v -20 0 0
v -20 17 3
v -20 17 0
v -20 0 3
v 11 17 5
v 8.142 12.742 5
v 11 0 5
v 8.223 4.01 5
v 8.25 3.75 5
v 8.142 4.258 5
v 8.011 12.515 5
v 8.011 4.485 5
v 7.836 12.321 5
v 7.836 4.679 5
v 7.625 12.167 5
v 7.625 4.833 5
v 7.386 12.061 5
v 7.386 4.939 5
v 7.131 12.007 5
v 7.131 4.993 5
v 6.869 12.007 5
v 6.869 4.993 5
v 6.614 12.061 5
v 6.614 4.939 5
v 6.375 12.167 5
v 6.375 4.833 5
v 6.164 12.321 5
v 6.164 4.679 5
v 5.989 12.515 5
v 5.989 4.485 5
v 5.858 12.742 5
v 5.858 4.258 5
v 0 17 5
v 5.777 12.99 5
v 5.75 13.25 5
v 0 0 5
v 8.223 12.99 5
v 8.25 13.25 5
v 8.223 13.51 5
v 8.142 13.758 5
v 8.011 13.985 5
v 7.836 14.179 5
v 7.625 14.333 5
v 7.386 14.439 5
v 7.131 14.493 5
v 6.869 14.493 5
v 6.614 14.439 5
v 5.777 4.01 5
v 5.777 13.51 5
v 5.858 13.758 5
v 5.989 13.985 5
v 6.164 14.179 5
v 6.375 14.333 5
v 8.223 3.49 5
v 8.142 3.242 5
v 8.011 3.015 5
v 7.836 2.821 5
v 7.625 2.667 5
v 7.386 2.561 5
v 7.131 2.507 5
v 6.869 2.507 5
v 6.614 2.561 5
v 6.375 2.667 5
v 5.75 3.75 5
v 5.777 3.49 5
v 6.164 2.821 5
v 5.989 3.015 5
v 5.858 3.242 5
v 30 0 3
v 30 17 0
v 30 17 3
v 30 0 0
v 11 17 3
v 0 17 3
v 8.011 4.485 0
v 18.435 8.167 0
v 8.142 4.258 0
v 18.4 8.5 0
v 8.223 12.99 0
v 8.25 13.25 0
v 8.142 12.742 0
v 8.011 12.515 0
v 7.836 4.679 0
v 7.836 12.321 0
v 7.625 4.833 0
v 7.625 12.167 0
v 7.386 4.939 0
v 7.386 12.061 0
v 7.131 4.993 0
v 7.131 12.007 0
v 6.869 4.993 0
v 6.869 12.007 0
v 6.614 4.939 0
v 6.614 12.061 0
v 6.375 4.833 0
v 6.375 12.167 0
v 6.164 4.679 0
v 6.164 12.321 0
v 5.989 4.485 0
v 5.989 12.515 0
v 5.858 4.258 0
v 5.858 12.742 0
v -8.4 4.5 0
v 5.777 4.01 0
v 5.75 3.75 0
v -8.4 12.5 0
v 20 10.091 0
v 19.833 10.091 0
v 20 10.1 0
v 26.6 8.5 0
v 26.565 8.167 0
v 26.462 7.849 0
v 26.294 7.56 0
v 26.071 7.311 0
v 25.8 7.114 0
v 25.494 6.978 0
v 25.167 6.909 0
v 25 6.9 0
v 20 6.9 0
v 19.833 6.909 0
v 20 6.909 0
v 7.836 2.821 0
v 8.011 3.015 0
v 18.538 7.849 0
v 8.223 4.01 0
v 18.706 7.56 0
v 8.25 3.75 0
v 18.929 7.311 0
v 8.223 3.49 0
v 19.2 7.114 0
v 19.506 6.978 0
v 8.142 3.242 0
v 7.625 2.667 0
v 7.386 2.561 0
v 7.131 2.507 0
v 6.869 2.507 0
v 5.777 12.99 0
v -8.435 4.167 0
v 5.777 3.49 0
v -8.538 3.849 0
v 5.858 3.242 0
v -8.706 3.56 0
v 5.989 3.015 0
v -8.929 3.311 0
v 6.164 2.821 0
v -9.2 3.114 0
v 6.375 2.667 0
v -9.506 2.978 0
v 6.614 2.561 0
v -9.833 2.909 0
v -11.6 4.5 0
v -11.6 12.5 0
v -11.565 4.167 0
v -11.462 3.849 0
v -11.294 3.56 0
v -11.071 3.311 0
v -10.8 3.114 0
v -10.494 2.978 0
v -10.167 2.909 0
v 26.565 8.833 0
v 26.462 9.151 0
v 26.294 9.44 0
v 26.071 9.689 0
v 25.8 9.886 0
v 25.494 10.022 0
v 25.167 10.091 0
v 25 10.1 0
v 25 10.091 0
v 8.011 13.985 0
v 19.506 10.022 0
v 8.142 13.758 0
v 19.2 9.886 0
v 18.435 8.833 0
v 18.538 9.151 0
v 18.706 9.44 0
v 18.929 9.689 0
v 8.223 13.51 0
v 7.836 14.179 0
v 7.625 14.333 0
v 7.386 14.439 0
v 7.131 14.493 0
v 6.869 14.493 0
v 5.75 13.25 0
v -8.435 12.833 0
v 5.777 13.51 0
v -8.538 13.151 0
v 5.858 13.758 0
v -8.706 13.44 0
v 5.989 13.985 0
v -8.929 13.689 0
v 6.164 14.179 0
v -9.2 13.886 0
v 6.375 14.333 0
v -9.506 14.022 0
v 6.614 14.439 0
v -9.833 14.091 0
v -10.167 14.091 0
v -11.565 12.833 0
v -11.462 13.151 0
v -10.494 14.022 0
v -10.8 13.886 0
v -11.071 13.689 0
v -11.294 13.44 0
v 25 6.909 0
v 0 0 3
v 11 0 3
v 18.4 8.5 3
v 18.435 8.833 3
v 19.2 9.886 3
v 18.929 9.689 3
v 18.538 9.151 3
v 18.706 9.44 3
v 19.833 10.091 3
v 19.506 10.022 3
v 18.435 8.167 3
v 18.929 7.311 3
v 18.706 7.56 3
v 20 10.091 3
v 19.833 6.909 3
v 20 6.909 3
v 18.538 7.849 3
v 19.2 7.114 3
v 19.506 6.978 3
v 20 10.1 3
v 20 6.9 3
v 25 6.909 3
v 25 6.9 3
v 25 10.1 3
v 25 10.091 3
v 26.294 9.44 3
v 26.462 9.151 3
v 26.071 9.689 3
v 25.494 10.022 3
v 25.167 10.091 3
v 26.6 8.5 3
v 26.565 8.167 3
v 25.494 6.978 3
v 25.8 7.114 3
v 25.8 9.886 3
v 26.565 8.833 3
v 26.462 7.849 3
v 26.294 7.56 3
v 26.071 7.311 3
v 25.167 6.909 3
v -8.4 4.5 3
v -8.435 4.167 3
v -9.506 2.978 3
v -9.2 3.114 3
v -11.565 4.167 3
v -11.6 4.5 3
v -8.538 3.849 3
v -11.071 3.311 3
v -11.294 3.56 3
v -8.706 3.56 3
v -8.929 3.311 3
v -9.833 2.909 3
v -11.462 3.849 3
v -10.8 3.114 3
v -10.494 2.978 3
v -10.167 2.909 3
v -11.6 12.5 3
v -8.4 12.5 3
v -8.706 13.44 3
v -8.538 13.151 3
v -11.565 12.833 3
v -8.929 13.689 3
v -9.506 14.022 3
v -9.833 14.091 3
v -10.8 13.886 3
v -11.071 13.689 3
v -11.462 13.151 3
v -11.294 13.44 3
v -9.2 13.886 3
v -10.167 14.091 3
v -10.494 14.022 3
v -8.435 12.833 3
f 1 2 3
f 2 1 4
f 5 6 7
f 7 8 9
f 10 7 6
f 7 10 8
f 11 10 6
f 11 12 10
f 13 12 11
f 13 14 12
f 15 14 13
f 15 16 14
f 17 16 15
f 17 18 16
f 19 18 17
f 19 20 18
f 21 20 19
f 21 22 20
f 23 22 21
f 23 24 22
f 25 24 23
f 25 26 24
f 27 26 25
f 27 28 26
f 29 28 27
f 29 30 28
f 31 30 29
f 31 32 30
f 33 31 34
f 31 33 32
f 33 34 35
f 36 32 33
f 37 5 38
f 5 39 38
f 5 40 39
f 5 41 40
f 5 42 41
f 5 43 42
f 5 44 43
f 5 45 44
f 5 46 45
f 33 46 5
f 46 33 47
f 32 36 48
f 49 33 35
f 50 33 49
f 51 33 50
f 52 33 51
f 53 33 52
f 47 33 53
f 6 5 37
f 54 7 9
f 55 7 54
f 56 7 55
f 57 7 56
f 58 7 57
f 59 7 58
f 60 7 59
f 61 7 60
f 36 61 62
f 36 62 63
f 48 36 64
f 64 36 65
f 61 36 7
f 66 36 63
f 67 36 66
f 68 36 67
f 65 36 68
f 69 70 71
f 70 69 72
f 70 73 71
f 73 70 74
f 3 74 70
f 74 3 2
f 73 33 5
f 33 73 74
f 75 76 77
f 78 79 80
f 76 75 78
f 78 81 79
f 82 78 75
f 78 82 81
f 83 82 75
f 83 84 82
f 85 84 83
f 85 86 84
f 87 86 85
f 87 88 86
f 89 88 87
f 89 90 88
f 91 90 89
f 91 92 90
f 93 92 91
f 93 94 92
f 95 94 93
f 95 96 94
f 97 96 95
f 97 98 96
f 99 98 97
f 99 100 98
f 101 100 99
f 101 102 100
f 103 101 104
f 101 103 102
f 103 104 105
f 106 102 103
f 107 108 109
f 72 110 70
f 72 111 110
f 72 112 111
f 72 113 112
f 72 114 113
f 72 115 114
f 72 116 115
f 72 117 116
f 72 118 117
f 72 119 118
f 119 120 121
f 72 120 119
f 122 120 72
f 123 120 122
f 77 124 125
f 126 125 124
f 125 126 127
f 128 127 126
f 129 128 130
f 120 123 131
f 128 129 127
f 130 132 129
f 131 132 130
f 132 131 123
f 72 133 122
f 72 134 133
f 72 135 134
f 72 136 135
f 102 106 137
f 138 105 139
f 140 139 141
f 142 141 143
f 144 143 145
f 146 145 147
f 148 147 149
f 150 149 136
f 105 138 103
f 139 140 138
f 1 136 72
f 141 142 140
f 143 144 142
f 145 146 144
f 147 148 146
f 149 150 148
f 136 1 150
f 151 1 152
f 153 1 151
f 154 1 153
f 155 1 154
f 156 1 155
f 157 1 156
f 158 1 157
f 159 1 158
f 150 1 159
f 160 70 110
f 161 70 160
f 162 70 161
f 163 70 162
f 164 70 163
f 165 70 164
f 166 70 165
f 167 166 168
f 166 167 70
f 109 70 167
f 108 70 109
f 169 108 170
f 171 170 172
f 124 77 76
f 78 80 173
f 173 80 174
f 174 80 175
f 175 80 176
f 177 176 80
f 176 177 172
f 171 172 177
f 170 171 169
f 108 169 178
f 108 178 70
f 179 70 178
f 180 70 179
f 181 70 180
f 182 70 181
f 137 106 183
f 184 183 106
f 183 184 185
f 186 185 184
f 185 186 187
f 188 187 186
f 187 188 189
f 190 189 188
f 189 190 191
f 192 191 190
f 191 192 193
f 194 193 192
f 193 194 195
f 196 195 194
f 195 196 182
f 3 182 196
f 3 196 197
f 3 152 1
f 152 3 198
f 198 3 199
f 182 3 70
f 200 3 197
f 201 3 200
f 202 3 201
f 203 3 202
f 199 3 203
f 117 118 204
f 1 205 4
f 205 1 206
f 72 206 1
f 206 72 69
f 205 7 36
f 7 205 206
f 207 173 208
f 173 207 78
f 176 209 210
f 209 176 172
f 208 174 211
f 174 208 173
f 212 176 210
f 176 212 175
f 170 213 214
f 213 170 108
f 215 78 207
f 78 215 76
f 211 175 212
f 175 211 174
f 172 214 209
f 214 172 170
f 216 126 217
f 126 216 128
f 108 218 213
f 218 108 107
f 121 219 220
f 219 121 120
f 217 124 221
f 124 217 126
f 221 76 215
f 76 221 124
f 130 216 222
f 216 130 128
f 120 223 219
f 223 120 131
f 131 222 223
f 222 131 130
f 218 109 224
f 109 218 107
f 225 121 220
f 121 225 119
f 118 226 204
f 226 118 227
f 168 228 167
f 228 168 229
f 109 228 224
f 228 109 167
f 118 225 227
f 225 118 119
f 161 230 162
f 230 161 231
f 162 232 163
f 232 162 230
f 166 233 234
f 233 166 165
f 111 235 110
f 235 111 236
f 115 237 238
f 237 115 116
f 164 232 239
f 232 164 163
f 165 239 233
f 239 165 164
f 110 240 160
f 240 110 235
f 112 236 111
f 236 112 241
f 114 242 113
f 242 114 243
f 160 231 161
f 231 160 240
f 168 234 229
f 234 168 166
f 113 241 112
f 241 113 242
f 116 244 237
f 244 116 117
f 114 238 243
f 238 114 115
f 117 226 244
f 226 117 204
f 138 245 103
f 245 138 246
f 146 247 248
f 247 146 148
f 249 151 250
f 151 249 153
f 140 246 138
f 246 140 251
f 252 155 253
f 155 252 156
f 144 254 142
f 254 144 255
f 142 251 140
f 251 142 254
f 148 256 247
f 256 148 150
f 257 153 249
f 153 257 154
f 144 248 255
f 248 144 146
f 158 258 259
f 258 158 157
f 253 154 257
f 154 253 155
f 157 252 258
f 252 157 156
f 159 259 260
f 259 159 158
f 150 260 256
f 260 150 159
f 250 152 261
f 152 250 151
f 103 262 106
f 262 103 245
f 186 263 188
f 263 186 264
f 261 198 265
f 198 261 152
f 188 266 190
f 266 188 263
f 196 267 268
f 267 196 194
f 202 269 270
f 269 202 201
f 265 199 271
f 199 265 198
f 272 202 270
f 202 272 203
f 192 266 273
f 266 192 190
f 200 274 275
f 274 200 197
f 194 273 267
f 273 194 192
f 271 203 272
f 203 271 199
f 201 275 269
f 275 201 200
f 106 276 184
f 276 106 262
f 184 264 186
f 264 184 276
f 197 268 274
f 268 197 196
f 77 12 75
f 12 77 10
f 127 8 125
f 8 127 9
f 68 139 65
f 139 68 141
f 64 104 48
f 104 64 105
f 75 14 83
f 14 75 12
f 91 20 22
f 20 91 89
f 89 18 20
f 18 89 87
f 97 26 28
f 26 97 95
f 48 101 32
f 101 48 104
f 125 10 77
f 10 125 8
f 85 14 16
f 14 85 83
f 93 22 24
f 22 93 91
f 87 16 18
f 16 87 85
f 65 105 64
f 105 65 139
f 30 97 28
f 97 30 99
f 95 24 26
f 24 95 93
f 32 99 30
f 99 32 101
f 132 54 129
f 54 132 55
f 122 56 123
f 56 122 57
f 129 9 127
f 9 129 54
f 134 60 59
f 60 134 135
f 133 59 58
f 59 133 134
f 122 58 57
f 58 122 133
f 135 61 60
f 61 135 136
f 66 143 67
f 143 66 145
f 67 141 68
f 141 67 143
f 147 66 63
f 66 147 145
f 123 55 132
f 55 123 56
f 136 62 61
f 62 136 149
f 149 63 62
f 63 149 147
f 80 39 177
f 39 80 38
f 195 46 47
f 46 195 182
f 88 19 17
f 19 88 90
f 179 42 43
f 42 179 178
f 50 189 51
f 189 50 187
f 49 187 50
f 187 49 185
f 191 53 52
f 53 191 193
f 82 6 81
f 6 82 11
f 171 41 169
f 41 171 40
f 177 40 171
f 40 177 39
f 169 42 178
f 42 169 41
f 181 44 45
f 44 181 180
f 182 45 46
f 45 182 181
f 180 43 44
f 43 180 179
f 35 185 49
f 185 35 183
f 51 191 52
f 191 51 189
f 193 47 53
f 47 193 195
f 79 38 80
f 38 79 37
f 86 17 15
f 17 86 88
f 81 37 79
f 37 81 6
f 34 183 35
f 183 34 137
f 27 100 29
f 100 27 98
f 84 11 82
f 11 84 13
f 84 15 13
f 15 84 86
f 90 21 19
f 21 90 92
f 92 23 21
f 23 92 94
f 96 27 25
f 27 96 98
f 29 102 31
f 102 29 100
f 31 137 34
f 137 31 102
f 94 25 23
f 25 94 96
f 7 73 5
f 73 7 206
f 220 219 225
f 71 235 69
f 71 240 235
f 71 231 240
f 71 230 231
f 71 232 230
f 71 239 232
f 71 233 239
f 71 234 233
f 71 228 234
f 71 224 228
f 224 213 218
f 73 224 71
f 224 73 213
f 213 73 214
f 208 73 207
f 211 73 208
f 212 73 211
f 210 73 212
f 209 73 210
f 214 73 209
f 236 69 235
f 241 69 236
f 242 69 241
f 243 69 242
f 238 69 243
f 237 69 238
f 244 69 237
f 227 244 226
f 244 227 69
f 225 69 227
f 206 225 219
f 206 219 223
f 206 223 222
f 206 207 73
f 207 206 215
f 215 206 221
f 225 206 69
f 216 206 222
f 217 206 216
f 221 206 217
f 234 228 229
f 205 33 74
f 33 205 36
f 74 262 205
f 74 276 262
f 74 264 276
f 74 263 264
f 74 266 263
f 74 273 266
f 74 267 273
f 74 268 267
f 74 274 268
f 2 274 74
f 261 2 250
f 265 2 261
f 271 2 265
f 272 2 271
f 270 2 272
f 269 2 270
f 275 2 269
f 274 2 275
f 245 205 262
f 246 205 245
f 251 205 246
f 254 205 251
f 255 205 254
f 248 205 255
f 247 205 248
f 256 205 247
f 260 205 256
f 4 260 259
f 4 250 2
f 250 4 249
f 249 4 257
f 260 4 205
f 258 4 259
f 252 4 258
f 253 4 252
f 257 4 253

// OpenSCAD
$fn=30;

endstop_mount();

module endstop_mount(){
    screw_distance = 9.5;
    difference(){
        translate([-20,0,0]) cube([50,17,5]);
        
        // Extrusion mount
        translate([20,17/2,-0.1]) cylinder(h=6,d=3.2);
        translate([20,17/2-1.6,-0.1]) cube([5,3.2,6]);
        translate([25,17/2,-0.1]) cylinder(h=6,d=3.2);
        
        // Extrusion mount front
        translate([-10,17/2-4,-0.1]) cylinder(h=6,d=3.2);
        translate([-10-1.6,17/2-4,-0.1]) cube([3.2,8,6]);
        translate([-10,17/2+4,-0.1]) cylinder(h=6,d=3.2);
        
        // Endstop mount
        translate([7,(17-screw_distance)/2,-0.1]) cylinder(h=6,d=2.5);
        translate([7,17-(17-screw_distance)/2,-0.1]) cylinder(h=6,d=2.5);
        
        // Thinner part
        translate([11,-0.1,3]) cube([30,20,5]);
        translate([-20.1,-0.1,3]) cube([20.1,20,5]);
    }
}
